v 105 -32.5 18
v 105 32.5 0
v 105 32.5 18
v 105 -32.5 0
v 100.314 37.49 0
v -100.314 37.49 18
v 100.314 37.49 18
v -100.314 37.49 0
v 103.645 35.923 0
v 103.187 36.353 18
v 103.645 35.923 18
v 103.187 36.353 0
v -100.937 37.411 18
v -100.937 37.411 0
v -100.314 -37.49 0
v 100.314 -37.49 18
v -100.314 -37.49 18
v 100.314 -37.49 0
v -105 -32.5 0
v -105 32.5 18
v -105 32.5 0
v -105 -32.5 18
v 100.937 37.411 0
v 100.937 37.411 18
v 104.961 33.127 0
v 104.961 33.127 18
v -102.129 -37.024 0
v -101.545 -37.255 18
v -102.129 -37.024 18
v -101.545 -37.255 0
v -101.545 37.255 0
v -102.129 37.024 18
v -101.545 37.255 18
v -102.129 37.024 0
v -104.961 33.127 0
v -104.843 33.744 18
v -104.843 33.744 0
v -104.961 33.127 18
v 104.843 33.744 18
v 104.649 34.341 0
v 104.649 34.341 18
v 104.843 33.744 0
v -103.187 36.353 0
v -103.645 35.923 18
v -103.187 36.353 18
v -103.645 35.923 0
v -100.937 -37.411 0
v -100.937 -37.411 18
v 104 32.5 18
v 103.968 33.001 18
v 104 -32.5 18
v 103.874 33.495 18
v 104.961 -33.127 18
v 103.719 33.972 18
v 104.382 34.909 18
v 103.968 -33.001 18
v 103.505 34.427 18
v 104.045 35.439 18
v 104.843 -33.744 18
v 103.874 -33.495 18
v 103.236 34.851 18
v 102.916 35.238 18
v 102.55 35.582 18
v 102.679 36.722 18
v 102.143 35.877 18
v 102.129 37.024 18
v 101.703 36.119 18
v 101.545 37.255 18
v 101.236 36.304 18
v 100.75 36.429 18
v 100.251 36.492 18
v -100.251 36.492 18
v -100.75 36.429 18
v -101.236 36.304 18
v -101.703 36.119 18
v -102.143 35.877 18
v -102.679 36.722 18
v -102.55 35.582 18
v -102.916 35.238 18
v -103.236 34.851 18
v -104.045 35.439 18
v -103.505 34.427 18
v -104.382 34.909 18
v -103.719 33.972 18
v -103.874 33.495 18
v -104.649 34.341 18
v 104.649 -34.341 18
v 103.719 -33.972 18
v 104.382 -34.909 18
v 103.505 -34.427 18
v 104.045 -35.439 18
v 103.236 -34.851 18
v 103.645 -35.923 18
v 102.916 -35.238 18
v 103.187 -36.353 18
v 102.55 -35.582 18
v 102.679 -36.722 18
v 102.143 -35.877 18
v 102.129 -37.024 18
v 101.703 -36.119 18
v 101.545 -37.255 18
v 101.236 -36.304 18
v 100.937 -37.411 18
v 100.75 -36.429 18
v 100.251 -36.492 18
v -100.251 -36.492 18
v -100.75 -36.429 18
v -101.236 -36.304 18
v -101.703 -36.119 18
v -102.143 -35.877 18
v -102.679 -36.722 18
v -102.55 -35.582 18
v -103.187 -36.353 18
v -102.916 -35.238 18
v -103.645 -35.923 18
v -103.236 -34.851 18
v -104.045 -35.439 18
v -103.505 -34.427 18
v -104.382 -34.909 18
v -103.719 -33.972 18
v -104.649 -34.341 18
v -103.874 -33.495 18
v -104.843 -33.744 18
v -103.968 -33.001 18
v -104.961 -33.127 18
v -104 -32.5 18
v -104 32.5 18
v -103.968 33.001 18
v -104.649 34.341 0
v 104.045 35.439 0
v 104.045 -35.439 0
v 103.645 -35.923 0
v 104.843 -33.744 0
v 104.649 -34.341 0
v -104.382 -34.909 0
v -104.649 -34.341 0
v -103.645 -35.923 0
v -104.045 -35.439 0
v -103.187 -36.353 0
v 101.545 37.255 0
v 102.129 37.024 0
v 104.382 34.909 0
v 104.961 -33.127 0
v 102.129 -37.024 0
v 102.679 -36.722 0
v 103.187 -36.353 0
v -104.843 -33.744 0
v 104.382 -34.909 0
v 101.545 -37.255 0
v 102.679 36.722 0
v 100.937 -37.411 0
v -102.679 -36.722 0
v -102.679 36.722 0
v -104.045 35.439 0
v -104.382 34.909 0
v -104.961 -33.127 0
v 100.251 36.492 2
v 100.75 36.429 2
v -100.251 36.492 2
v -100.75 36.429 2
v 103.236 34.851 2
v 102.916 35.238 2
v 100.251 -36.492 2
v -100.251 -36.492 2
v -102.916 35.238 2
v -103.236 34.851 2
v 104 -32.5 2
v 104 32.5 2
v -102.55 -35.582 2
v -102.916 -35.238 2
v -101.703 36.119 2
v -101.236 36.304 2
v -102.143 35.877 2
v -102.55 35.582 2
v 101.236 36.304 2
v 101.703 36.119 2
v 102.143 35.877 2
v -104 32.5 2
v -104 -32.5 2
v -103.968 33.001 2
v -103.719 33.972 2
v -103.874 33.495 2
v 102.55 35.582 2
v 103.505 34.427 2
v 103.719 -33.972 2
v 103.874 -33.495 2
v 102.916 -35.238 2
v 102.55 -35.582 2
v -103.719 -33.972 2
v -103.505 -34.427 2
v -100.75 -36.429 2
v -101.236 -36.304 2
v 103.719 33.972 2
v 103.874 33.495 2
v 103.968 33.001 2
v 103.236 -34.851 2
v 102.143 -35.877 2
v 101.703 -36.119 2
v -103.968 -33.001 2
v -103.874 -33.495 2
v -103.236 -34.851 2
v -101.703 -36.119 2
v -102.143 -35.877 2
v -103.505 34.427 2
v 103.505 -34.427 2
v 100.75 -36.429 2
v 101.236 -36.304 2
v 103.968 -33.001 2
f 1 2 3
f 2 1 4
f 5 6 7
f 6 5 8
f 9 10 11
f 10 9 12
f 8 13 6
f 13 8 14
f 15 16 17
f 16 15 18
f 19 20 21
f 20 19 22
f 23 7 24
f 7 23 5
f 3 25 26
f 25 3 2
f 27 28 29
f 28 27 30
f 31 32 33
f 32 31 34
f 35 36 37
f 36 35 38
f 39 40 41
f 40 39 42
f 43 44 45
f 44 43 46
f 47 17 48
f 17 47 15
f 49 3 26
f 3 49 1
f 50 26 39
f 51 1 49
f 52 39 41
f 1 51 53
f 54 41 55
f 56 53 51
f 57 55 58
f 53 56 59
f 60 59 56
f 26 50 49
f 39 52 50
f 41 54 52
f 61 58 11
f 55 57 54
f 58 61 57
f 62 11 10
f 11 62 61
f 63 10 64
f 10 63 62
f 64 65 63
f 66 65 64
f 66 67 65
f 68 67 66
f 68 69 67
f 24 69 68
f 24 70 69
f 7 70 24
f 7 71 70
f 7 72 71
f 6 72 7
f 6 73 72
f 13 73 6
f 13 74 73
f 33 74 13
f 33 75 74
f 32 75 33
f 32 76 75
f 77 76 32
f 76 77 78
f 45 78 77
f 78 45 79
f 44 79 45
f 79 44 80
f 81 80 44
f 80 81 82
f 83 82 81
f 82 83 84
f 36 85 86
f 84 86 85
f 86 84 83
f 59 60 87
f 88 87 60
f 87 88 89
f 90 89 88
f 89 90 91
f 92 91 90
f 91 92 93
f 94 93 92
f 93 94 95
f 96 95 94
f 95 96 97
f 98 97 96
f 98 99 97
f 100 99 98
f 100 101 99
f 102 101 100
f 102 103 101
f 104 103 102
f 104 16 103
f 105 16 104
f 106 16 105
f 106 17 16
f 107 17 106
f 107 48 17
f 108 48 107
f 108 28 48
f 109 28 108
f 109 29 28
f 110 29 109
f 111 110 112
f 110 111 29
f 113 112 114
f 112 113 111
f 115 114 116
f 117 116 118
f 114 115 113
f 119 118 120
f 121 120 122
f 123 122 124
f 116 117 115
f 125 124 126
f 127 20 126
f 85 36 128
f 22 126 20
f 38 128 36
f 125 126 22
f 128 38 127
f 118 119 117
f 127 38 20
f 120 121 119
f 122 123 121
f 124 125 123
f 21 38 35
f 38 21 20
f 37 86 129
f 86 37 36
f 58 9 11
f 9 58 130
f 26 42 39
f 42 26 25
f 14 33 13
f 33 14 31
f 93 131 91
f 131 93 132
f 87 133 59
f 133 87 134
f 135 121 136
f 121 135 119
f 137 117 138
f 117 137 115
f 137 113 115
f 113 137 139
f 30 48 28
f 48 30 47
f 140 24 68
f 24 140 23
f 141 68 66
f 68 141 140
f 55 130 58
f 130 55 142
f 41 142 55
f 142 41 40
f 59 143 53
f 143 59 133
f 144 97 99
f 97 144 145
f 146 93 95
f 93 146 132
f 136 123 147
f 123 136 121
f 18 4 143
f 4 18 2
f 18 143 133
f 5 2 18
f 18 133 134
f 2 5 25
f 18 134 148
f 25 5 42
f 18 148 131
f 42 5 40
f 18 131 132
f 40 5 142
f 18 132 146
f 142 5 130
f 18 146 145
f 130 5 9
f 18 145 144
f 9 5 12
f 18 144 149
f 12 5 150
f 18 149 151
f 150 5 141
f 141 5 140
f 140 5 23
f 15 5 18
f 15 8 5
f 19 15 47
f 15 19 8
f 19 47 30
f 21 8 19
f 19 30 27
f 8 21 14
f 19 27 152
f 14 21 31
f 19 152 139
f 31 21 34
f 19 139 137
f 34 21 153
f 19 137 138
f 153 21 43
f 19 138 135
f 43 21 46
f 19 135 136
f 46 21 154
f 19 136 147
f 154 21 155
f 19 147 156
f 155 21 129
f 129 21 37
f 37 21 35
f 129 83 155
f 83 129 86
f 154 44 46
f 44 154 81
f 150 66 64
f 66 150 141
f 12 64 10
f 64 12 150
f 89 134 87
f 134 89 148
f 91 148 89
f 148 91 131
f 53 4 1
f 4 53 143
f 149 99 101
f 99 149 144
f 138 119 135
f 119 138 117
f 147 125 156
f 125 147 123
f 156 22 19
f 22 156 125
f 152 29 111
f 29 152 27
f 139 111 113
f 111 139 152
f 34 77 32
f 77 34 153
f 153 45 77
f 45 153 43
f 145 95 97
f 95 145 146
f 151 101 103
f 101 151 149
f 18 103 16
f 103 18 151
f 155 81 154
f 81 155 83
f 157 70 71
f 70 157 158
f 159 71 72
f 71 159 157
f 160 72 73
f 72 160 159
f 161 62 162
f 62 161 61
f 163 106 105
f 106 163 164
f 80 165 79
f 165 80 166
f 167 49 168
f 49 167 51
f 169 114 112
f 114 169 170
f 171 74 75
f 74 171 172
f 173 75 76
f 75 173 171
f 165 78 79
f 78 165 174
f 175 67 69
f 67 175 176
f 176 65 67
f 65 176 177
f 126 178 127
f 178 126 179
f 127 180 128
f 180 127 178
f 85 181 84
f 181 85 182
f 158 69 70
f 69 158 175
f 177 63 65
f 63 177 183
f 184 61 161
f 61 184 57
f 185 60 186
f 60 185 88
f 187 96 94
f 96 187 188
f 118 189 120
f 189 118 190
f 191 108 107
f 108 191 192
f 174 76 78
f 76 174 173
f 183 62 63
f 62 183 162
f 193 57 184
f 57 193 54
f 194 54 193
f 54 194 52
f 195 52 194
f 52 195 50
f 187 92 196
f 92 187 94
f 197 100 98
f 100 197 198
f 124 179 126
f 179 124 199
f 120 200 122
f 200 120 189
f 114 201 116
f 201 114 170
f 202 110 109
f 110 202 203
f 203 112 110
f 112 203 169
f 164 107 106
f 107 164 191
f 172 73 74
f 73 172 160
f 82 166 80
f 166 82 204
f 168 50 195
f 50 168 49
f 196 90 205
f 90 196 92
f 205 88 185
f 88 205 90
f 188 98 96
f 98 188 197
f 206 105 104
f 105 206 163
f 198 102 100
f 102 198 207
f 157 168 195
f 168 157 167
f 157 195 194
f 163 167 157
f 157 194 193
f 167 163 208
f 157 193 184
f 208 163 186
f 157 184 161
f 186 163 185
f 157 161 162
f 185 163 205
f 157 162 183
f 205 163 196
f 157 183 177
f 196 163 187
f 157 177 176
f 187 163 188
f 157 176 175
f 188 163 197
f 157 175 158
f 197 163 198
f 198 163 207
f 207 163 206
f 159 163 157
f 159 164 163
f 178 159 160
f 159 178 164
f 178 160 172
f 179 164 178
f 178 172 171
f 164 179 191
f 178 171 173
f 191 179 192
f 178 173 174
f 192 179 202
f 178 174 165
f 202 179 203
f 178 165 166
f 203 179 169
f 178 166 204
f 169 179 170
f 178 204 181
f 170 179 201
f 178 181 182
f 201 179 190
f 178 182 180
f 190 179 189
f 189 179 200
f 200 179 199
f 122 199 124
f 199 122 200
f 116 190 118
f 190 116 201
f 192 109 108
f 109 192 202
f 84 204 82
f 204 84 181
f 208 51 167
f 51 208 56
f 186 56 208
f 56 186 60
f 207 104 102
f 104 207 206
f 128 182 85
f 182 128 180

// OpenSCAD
$fn = 50;


difference() {
	union() {
		hull() {
			translate(v = [-100.0000000000, 32.5000000000, 0]) {
				cylinder(h = 18, r = 5);
			}
			translate(v = [100.0000000000, 32.5000000000, 0]) {
				cylinder(h = 18, r = 5);
			}
			translate(v = [-100.0000000000, -32.5000000000, 0]) {
				cylinder(h = 18, r = 5);
			}
			translate(v = [100.0000000000, -32.5000000000, 0]) {
				cylinder(h = 18, r = 5);
			}
		}
	}
	union() {
		translate(v = [0, 0, 2]) {
			hull() {
				translate(v = [-100.0000000000, 32.5000000000, 0]) {
					cylinder(h = 16, r = 4);
				}
				translate(v = [100.0000000000, 32.5000000000, 0]) {
					cylinder(h = 16, r = 4);
				}
				translate(v = [-100.0000000000, -32.5000000000, 0]) {
					cylinder(h = 16, r = 4);
				}
				translate(v = [100.0000000000, -32.5000000000, 0]) {
					cylinder(h = 16, r = 4);
				}
			}
		}
	}
}
